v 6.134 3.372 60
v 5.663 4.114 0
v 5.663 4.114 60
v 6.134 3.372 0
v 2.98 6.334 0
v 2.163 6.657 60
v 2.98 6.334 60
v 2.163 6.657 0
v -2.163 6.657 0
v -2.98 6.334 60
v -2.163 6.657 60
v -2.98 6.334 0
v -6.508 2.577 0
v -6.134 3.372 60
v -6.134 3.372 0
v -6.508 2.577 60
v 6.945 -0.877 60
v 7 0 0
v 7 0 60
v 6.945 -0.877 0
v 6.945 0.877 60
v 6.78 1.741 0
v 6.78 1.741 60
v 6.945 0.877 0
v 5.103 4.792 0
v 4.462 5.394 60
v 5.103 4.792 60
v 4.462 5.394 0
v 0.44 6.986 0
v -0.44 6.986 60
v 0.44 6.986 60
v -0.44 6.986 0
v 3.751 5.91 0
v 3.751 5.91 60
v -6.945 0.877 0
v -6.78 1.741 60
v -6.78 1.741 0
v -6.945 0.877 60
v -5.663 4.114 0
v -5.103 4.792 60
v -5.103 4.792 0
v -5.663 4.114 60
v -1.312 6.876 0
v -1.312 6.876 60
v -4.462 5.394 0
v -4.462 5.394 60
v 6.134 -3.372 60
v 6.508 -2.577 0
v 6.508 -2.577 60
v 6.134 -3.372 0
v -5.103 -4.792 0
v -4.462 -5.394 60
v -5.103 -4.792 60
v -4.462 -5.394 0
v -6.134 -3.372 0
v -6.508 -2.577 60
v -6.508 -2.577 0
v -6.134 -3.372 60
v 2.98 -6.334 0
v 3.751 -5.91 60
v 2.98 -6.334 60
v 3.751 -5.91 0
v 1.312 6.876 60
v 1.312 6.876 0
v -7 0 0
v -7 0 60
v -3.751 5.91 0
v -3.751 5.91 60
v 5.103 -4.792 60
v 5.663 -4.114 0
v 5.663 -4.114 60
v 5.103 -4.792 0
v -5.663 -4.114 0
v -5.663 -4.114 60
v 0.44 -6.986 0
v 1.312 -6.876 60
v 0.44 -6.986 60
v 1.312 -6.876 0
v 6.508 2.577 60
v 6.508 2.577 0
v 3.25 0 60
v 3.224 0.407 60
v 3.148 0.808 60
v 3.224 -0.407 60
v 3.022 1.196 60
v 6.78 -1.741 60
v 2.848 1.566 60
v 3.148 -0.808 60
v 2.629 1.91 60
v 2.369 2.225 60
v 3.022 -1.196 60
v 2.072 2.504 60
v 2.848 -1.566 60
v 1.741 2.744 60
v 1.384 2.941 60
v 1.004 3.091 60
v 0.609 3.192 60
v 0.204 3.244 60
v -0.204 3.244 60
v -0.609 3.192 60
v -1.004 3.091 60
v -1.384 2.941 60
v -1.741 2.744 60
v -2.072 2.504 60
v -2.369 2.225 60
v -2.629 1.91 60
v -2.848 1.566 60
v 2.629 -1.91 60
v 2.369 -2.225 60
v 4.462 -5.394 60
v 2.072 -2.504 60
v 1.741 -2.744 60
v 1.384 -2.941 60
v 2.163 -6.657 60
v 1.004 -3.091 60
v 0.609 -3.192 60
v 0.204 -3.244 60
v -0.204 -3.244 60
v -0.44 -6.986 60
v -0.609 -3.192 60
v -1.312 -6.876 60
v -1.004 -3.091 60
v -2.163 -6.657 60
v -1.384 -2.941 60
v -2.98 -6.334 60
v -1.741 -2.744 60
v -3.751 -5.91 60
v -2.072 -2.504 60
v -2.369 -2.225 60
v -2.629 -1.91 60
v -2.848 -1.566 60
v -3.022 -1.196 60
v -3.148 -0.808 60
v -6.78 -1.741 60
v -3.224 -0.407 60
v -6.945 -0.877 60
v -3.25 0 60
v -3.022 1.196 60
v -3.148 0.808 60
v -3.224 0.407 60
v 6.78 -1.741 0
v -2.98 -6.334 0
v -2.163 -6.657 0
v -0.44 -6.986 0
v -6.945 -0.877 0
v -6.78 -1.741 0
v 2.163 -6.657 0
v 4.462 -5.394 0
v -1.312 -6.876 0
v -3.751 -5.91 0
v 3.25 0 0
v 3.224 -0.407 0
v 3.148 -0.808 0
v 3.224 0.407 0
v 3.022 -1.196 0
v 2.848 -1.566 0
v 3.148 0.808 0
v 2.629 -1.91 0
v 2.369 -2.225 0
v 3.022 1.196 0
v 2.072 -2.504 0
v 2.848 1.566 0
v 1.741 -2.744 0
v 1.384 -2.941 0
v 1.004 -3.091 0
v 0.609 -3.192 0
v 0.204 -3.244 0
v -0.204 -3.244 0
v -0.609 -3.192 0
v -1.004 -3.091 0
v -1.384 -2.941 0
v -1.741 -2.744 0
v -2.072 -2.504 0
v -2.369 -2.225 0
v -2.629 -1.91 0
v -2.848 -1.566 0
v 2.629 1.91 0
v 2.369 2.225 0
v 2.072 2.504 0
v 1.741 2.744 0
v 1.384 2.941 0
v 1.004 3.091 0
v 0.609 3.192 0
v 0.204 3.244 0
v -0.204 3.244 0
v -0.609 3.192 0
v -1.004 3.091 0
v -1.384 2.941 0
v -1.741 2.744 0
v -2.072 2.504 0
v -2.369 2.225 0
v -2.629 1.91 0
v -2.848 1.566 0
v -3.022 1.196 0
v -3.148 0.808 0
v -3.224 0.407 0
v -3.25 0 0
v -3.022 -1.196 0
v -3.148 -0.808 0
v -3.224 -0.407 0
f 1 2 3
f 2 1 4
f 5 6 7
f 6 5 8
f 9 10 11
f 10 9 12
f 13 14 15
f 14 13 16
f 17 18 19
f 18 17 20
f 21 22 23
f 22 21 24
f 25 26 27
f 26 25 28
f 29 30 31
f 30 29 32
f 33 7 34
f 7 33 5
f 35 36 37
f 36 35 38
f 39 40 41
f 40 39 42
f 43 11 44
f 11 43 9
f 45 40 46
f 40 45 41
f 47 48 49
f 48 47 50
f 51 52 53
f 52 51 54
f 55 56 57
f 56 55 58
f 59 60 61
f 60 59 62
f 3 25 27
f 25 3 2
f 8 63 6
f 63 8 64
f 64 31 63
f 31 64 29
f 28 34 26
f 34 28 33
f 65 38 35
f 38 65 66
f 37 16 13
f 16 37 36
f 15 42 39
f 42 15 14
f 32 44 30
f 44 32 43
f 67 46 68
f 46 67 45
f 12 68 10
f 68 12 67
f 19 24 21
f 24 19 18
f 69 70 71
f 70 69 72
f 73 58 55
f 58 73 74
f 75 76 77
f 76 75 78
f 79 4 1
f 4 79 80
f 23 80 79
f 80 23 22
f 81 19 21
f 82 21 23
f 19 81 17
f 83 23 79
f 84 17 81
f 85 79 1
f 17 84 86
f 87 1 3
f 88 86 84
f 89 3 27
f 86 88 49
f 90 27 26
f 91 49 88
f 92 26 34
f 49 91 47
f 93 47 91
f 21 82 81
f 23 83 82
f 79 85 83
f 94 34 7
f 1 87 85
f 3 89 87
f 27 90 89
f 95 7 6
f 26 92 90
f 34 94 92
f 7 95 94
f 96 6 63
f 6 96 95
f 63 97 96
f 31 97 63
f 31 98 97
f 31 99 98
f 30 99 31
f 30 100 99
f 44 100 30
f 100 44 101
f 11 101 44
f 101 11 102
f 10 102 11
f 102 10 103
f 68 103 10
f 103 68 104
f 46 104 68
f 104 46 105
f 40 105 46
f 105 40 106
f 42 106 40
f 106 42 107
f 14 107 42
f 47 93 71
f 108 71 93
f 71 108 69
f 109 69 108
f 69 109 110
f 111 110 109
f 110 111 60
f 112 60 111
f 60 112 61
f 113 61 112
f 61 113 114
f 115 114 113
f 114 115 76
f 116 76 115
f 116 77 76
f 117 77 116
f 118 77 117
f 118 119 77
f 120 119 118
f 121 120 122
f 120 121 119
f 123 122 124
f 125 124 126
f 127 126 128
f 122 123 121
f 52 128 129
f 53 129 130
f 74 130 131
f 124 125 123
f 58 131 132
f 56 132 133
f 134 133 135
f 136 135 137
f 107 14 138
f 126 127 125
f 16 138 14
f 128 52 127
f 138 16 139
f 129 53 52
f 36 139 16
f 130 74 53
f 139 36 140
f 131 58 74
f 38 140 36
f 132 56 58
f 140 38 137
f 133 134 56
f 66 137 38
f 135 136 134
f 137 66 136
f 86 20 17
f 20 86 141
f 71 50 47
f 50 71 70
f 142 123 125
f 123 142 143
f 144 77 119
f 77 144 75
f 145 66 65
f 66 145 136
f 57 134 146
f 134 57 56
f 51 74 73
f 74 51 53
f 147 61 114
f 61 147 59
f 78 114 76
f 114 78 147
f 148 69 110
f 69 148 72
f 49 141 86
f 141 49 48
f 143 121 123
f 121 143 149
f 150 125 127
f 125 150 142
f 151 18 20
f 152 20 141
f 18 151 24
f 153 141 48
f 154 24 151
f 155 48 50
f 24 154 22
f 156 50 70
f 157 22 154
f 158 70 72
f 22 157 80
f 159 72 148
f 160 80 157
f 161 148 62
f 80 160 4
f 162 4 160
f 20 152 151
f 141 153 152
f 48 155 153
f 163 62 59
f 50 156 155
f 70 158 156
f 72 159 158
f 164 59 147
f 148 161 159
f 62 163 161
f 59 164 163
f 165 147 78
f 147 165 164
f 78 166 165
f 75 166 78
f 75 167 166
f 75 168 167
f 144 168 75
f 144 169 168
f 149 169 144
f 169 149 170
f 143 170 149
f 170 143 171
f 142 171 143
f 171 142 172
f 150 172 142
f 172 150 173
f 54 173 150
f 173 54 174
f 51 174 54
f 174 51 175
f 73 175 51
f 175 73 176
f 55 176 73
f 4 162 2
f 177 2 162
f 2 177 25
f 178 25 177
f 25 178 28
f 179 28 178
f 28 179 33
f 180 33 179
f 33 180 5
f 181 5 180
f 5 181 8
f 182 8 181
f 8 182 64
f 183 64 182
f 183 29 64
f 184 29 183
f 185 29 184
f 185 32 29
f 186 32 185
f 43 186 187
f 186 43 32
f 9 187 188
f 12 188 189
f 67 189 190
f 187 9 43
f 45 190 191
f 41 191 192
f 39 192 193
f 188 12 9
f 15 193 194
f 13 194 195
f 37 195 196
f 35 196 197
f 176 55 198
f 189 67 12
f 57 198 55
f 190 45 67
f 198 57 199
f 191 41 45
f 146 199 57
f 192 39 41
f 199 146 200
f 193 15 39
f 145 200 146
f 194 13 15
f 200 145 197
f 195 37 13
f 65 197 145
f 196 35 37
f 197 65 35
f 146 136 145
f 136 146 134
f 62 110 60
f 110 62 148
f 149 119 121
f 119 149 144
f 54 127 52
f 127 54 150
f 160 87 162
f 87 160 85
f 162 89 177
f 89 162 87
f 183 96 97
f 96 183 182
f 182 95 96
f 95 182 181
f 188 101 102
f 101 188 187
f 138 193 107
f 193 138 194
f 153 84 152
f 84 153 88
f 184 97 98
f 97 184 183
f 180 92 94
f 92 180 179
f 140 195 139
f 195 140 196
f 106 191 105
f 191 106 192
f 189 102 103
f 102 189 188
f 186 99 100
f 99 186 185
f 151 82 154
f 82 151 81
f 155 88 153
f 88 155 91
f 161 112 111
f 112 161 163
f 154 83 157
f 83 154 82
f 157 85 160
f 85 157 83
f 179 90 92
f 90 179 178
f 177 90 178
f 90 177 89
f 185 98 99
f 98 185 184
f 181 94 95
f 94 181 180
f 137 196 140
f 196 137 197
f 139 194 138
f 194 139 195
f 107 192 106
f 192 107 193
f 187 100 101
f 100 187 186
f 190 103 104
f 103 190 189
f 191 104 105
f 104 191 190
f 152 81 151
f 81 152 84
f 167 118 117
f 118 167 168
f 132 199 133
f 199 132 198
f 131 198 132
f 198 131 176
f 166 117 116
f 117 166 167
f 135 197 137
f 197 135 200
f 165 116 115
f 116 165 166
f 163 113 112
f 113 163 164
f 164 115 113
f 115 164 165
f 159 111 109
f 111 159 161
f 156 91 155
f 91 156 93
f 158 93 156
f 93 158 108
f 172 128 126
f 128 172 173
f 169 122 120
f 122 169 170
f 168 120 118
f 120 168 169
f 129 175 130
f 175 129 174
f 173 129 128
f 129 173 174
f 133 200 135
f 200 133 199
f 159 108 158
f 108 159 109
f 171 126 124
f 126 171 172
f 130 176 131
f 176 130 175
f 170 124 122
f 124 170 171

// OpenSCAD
$fn = 50;


difference() {
	union() {
		cylinder(h = 60, r = 7.0000000000);
	}
	union() {
		translate(v = [0, 0, -100]) {
			cylinder(h = 200, r = 3.2500000000);
		}
	}
}
